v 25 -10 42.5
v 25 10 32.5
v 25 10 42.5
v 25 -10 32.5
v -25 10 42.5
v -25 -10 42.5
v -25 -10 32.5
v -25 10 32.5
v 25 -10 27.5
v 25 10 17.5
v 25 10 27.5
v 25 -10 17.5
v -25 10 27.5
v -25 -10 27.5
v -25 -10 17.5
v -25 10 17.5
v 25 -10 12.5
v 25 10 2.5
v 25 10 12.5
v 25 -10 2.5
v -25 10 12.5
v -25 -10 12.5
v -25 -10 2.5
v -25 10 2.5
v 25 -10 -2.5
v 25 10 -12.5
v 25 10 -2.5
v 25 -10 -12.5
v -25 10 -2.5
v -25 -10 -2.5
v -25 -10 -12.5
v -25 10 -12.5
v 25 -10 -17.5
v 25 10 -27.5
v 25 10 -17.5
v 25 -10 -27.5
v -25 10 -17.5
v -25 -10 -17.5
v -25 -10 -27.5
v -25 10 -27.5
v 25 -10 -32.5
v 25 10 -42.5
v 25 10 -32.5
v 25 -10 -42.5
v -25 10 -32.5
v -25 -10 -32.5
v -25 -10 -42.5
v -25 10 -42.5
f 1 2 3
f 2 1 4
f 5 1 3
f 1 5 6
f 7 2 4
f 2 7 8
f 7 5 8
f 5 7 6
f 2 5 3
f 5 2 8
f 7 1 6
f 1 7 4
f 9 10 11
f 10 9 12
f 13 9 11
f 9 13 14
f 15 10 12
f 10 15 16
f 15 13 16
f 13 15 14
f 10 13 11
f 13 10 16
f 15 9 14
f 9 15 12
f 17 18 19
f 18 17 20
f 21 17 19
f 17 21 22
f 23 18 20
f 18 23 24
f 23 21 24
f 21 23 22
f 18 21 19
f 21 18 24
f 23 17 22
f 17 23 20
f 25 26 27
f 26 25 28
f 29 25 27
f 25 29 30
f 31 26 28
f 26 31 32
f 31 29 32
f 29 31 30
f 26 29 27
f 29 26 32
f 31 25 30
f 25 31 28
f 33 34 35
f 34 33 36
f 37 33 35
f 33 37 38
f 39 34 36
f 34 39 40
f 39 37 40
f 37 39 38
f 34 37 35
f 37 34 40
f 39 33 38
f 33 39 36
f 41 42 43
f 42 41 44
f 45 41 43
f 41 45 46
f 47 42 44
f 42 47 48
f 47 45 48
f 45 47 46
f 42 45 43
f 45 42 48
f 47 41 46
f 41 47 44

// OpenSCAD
// Define the dimensions of the rectangular block
block_length = 50;  // Length of the block
block_width = 20;   // Width of the block
block_height = 10;  // Height of the block

// Define the spacing between layers
layer_spacing = 5;  // Space between each block

// Function to create a rectangular block
module rectangular_block() {
    cube([block_length, block_width, block_height], center = true);
}

// Assemble the layers based on the graph_dict
module assembly() {
    // Layer 1: Topmost block
    translate([0, 0, (block_height + layer_spacing) * 2.5])
        rectangular_block();

    // Layer 2: Second block
    translate([0, 0, (block_height + layer_spacing) * 1.5])
        rectangular_block();

    // Layer 3: Third block
    translate([0, 0, (block_height + layer_spacing) * 0.5])
        rectangular_block();

    // Layer 4: Fourth block
    translate([0, 0, -(block_height + layer_spacing) * 0.5])
        rectangular_block();

    // Layer 5: Fifth block
    translate([0, 0, -(block_height + layer_spacing) * 1.5])
        rectangular_block();

    // Layer 6: Bottommost block
    translate([0, 0, -(block_height + layer_spacing) * 2.5])
        rectangular_block();
}

// Render the assembly
assembly();
